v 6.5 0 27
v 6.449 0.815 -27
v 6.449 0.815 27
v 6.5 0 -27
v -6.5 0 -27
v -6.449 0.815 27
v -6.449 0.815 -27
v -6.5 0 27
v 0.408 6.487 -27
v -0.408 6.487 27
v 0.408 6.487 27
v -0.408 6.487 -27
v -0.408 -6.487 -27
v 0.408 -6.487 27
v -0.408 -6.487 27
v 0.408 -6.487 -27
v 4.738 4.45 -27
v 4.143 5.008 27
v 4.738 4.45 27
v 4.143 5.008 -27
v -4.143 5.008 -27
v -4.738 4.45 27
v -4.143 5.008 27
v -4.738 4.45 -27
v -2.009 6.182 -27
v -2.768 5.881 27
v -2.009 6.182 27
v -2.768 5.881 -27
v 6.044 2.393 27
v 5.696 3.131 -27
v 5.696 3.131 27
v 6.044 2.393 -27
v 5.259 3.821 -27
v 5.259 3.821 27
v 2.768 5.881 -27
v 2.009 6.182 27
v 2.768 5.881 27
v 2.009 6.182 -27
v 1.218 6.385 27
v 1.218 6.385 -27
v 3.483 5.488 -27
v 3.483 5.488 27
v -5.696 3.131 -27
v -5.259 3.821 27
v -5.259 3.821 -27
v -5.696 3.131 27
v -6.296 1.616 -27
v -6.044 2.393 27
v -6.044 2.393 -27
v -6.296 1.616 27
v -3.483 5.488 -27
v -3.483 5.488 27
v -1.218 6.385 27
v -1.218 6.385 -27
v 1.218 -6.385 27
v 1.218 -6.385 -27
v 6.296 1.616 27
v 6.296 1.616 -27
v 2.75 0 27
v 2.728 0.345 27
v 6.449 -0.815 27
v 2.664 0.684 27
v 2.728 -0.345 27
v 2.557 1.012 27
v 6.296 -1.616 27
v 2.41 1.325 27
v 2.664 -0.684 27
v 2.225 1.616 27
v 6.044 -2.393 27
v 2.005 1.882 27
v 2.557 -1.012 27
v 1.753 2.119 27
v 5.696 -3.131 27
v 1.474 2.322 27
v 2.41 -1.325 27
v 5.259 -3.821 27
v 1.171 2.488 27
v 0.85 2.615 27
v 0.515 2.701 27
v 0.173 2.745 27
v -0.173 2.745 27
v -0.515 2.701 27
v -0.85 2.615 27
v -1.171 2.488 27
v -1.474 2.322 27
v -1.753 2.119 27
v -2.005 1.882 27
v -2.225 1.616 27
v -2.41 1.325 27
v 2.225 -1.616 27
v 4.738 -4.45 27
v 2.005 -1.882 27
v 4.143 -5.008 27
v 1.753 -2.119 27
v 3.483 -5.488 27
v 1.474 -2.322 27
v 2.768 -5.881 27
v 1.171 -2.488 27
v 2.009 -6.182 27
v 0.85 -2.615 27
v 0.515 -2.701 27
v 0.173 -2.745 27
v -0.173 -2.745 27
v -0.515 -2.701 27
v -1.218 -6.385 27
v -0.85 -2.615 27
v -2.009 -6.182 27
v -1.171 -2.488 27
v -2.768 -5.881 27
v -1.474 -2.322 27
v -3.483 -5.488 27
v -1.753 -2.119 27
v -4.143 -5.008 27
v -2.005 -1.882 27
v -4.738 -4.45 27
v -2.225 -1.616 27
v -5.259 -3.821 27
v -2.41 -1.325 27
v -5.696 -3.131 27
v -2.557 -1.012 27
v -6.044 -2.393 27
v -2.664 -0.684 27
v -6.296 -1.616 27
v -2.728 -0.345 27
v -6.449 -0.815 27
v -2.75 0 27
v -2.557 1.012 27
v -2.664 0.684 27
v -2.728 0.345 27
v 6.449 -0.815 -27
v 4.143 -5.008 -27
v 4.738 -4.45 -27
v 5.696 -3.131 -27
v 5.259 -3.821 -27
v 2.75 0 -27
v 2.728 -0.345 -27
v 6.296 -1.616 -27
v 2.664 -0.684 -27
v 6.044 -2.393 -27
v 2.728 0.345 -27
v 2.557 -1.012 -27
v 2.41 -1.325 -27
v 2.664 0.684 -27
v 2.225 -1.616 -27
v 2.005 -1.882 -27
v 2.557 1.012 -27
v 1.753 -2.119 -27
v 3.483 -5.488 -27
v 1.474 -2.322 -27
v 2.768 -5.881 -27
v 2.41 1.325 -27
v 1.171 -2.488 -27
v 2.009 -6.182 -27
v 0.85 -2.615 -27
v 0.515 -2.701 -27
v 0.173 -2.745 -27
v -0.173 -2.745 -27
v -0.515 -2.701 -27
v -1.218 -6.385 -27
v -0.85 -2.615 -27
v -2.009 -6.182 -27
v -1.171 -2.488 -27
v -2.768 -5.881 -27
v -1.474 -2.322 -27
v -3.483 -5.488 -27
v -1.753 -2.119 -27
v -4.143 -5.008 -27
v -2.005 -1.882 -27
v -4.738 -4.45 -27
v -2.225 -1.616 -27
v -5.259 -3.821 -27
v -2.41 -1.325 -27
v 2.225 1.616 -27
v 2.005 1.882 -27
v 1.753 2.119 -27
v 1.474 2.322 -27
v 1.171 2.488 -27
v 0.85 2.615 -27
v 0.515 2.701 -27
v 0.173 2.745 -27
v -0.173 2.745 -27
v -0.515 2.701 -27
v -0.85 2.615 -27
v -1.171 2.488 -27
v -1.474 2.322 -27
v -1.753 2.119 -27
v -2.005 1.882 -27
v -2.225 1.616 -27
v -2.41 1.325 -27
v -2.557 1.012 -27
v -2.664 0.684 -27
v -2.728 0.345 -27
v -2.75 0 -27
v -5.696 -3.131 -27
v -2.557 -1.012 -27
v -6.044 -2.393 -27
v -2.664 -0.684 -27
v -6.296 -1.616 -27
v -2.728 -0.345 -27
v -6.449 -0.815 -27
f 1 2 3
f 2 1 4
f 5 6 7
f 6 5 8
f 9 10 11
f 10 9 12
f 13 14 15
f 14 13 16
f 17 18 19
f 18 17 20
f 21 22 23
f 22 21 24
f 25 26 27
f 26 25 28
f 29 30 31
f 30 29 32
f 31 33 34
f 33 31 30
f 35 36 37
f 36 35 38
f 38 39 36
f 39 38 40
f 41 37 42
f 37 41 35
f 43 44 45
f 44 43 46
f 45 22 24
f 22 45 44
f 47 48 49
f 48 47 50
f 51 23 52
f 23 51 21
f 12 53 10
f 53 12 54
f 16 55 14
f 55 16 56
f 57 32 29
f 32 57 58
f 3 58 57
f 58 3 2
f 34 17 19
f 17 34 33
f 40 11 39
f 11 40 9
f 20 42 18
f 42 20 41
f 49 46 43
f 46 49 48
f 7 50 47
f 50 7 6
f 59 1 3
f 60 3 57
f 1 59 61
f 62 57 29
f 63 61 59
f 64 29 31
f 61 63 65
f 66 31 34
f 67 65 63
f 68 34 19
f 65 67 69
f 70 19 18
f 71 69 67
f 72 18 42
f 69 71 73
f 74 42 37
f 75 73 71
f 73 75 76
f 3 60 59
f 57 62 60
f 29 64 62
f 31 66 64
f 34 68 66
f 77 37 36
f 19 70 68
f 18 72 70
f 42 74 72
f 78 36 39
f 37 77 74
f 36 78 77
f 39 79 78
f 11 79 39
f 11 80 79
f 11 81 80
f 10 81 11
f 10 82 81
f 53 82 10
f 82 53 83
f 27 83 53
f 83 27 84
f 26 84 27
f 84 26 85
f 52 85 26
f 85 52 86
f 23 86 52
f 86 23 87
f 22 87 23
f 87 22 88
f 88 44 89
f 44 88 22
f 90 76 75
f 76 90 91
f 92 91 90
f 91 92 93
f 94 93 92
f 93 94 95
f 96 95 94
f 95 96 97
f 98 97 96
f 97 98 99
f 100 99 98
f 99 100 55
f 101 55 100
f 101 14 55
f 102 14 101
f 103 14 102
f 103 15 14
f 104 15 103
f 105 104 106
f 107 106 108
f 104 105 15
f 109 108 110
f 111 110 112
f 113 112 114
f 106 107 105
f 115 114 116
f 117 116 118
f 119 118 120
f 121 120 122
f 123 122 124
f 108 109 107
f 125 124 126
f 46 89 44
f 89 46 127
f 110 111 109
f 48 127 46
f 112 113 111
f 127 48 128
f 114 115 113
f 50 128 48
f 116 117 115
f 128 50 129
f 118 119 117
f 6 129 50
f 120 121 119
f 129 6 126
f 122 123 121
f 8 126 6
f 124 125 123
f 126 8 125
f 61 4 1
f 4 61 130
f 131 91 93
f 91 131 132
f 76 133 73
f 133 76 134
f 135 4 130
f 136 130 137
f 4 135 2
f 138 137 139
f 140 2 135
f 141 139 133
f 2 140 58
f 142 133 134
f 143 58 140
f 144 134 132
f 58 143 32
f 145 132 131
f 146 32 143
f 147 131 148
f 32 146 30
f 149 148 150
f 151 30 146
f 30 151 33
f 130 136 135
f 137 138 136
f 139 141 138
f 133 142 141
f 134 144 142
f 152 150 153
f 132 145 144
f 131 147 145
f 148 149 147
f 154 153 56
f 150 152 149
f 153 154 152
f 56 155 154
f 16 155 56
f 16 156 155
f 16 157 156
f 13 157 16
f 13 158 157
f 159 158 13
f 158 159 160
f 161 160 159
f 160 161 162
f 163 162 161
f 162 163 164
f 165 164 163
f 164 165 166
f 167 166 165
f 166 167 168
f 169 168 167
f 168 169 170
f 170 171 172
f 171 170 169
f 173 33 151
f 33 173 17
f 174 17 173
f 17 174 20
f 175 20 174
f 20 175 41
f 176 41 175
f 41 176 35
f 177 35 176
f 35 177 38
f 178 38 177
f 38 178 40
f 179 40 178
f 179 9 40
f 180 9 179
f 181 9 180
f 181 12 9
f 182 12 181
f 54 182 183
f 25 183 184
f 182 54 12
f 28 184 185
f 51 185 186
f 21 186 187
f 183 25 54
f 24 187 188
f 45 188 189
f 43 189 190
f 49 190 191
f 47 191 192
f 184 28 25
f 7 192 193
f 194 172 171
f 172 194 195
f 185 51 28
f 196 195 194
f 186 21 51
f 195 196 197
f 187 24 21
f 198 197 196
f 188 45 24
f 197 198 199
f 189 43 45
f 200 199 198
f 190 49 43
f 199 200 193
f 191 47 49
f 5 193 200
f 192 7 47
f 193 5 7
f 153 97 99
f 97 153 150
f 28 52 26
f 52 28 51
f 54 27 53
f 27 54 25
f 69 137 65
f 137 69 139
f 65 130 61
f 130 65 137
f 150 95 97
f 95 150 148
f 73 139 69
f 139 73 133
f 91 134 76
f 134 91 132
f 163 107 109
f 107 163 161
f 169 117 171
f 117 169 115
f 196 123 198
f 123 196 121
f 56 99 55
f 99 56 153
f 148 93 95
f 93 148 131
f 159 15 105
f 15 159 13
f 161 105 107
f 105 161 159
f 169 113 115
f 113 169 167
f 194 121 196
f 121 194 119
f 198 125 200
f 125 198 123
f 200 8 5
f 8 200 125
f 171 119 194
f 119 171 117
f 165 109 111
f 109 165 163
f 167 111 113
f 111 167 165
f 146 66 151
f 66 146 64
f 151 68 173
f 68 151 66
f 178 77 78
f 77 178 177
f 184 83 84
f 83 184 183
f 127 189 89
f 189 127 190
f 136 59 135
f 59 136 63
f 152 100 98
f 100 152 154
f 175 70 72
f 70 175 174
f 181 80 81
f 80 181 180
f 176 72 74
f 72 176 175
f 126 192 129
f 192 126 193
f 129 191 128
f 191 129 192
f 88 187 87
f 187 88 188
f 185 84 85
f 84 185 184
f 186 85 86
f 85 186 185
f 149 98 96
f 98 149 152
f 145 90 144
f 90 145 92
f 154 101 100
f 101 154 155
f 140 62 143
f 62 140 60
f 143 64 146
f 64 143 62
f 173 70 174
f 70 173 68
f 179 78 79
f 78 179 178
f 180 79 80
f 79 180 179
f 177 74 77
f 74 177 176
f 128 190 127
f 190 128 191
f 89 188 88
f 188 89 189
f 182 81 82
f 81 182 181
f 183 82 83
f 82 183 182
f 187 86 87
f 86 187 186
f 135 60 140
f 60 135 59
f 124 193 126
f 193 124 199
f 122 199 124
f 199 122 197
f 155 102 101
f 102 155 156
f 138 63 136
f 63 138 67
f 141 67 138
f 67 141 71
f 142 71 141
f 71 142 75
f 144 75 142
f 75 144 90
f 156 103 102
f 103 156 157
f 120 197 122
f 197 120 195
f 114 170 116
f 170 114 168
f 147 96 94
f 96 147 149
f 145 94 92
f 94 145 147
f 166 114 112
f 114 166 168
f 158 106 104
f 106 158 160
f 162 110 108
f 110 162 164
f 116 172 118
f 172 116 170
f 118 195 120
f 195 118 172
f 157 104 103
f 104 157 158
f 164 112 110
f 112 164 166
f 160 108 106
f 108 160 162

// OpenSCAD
$fn = 50;


difference() {
	union() {
		translate(v = [0, 0, -27.0000000000]) {
			cylinder(h = 54, r = 6.5000000000);
		}
	}
	union() {
		translate(v = [0, 0, -100.0000000000]) {
			cylinder(h = 200, r = 2.7500000000);
		}
	}
}
